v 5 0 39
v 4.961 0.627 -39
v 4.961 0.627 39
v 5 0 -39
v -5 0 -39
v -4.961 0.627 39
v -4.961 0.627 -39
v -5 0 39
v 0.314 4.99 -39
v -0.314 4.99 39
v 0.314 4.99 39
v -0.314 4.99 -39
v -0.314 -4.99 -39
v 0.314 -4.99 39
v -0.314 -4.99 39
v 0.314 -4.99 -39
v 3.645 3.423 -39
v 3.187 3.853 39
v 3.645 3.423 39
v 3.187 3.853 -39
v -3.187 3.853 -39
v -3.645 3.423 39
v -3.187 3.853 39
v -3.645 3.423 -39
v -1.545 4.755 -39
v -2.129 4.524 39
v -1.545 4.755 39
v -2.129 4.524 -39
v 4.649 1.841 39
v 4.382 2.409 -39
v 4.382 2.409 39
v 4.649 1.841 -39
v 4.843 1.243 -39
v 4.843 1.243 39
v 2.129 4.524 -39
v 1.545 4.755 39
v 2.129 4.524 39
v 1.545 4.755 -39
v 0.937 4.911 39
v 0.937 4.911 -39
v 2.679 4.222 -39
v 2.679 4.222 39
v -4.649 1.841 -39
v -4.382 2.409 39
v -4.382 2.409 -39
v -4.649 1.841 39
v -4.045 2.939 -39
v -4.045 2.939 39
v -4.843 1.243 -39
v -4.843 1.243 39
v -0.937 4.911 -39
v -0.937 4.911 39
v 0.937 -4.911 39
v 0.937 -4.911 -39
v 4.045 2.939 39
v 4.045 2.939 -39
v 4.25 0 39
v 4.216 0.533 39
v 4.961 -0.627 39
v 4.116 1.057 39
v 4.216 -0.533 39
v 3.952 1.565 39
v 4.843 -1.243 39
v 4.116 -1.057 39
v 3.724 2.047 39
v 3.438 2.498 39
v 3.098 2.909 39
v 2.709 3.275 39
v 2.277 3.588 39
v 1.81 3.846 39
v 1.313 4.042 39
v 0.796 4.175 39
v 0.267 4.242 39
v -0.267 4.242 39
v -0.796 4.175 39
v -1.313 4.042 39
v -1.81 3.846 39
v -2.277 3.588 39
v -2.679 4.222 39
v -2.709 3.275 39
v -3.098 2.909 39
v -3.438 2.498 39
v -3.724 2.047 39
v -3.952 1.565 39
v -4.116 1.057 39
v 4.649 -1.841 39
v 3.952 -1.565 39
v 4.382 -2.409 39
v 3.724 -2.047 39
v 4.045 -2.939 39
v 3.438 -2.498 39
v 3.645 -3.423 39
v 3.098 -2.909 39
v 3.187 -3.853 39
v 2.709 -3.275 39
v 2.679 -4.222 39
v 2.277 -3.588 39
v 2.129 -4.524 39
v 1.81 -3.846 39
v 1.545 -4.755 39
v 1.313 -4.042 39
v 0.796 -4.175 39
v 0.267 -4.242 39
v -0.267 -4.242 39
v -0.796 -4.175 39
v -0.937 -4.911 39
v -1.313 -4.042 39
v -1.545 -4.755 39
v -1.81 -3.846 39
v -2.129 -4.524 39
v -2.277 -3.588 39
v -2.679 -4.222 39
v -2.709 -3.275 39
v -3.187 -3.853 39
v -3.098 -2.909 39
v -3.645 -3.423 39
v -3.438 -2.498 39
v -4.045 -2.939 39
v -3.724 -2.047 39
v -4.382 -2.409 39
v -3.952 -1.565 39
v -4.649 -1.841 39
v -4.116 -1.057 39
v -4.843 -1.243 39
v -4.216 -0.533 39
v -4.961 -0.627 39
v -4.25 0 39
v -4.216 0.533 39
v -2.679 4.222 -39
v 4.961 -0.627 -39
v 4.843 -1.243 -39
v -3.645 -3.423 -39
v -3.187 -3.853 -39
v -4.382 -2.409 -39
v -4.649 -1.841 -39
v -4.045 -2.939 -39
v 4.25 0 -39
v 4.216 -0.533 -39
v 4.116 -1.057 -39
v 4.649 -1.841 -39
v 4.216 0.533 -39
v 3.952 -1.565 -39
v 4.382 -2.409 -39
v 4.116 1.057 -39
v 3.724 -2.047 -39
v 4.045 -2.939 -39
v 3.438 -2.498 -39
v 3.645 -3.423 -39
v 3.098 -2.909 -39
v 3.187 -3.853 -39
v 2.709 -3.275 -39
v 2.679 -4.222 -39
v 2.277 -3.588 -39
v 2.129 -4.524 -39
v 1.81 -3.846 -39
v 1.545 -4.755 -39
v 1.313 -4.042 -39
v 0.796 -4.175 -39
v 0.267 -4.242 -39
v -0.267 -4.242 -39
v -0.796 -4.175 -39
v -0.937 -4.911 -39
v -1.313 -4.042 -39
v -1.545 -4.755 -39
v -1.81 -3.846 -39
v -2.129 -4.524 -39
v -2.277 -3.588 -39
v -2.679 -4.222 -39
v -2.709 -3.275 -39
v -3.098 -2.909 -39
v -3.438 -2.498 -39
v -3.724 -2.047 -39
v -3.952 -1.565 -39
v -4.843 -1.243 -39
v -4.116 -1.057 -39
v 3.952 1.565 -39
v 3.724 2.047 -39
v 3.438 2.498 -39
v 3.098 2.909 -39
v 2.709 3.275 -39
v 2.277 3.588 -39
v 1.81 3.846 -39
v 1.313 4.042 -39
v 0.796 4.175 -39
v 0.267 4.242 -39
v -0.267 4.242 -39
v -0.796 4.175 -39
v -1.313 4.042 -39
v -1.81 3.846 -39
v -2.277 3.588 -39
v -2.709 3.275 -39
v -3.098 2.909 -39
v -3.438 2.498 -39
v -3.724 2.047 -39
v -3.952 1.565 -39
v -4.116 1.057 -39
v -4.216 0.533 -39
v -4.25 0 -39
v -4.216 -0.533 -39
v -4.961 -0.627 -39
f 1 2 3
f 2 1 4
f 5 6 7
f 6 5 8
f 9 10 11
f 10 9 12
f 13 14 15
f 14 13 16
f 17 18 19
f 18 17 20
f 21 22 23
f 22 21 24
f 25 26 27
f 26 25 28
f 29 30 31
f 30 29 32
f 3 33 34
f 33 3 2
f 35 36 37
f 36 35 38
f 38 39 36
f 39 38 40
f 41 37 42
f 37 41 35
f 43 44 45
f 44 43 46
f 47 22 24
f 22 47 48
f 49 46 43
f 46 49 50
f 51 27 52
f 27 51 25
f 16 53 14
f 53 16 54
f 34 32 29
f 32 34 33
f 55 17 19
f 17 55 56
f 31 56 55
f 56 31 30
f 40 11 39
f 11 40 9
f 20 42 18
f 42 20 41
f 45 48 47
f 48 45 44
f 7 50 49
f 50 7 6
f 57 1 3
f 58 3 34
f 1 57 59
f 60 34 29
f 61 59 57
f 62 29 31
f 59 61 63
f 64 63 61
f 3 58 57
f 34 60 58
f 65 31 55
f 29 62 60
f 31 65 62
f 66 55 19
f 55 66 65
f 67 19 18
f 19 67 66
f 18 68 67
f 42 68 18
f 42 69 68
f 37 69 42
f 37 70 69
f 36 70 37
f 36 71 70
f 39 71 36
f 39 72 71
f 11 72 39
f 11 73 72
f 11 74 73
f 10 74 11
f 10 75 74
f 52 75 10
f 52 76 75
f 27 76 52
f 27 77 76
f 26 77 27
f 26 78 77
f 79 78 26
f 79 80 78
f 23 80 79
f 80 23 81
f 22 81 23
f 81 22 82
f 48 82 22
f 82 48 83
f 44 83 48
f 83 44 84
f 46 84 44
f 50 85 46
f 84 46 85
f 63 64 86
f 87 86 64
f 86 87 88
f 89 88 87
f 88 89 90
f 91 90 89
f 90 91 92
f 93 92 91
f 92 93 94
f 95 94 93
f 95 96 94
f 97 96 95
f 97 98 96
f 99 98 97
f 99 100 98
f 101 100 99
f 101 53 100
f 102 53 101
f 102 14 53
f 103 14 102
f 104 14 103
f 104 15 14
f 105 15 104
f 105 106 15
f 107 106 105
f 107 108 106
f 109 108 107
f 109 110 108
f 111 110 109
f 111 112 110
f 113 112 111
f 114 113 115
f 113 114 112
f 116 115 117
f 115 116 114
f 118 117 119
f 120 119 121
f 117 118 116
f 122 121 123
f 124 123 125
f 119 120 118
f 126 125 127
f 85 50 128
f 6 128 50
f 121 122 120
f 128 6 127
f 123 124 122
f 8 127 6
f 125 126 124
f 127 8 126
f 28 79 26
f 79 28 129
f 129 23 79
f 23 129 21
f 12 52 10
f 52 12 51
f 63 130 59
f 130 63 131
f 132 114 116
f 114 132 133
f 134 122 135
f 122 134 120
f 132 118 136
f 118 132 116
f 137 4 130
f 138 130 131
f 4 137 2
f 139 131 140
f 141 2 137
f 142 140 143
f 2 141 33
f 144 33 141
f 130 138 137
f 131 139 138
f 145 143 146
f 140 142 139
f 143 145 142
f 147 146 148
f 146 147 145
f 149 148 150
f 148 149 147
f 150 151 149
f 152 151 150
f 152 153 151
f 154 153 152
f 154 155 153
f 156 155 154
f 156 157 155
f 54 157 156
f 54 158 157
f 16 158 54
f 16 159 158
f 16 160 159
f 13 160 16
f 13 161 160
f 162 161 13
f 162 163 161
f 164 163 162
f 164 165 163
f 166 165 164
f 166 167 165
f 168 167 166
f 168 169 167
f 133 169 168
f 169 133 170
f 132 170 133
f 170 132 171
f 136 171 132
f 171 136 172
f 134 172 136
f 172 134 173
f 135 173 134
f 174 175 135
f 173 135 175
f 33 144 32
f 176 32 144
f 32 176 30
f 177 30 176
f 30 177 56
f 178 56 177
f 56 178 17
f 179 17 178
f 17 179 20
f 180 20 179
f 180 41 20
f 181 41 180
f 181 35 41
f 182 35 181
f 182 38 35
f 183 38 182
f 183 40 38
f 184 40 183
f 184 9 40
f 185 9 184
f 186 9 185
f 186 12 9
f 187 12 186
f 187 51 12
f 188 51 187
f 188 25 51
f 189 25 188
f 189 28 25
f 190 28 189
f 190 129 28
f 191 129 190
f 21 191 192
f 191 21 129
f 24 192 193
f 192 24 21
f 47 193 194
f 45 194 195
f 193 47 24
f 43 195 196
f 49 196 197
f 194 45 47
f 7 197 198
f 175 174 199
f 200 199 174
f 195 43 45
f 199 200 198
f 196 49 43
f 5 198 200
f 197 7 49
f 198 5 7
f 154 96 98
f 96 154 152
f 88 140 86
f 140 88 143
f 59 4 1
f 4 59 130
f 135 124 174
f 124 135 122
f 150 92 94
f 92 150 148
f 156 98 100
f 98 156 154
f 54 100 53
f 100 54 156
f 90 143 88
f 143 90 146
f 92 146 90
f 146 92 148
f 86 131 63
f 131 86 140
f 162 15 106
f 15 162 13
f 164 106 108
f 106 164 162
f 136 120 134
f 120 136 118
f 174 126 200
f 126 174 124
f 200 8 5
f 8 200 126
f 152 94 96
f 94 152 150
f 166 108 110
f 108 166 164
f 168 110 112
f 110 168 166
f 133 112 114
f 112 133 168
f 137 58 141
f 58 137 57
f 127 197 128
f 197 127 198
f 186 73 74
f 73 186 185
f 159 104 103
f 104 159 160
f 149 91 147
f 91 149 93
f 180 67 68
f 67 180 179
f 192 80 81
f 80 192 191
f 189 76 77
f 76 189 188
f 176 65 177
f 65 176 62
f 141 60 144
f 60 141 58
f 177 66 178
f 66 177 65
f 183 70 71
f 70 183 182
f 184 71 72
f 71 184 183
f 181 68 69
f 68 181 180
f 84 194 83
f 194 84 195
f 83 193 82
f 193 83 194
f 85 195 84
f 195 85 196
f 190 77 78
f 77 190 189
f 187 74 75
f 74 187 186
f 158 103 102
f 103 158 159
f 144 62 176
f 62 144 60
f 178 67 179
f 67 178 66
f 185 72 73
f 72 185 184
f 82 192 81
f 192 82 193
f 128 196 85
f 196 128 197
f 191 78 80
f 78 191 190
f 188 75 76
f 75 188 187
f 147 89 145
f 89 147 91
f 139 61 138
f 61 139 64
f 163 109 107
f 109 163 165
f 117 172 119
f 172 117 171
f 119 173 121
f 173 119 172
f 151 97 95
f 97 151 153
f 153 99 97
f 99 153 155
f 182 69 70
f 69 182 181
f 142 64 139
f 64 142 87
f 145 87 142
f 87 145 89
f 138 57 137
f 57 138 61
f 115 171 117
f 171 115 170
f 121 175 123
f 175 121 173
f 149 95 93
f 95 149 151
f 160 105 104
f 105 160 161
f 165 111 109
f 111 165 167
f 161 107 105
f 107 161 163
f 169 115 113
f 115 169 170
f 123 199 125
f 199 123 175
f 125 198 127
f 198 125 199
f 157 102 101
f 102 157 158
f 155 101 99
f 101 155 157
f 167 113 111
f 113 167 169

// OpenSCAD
$fn = 50;


difference() {
	union() {
		translate(v = [0, 0, -39.0000000000]) {
			cylinder(h = 78, r = 5.0000000000);
		}
	}
	union() {
		translate(v = [0, 0, -100.0000000000]) {
			cylinder(h = 200, r = 4.2500000000);
		}
	}
}
